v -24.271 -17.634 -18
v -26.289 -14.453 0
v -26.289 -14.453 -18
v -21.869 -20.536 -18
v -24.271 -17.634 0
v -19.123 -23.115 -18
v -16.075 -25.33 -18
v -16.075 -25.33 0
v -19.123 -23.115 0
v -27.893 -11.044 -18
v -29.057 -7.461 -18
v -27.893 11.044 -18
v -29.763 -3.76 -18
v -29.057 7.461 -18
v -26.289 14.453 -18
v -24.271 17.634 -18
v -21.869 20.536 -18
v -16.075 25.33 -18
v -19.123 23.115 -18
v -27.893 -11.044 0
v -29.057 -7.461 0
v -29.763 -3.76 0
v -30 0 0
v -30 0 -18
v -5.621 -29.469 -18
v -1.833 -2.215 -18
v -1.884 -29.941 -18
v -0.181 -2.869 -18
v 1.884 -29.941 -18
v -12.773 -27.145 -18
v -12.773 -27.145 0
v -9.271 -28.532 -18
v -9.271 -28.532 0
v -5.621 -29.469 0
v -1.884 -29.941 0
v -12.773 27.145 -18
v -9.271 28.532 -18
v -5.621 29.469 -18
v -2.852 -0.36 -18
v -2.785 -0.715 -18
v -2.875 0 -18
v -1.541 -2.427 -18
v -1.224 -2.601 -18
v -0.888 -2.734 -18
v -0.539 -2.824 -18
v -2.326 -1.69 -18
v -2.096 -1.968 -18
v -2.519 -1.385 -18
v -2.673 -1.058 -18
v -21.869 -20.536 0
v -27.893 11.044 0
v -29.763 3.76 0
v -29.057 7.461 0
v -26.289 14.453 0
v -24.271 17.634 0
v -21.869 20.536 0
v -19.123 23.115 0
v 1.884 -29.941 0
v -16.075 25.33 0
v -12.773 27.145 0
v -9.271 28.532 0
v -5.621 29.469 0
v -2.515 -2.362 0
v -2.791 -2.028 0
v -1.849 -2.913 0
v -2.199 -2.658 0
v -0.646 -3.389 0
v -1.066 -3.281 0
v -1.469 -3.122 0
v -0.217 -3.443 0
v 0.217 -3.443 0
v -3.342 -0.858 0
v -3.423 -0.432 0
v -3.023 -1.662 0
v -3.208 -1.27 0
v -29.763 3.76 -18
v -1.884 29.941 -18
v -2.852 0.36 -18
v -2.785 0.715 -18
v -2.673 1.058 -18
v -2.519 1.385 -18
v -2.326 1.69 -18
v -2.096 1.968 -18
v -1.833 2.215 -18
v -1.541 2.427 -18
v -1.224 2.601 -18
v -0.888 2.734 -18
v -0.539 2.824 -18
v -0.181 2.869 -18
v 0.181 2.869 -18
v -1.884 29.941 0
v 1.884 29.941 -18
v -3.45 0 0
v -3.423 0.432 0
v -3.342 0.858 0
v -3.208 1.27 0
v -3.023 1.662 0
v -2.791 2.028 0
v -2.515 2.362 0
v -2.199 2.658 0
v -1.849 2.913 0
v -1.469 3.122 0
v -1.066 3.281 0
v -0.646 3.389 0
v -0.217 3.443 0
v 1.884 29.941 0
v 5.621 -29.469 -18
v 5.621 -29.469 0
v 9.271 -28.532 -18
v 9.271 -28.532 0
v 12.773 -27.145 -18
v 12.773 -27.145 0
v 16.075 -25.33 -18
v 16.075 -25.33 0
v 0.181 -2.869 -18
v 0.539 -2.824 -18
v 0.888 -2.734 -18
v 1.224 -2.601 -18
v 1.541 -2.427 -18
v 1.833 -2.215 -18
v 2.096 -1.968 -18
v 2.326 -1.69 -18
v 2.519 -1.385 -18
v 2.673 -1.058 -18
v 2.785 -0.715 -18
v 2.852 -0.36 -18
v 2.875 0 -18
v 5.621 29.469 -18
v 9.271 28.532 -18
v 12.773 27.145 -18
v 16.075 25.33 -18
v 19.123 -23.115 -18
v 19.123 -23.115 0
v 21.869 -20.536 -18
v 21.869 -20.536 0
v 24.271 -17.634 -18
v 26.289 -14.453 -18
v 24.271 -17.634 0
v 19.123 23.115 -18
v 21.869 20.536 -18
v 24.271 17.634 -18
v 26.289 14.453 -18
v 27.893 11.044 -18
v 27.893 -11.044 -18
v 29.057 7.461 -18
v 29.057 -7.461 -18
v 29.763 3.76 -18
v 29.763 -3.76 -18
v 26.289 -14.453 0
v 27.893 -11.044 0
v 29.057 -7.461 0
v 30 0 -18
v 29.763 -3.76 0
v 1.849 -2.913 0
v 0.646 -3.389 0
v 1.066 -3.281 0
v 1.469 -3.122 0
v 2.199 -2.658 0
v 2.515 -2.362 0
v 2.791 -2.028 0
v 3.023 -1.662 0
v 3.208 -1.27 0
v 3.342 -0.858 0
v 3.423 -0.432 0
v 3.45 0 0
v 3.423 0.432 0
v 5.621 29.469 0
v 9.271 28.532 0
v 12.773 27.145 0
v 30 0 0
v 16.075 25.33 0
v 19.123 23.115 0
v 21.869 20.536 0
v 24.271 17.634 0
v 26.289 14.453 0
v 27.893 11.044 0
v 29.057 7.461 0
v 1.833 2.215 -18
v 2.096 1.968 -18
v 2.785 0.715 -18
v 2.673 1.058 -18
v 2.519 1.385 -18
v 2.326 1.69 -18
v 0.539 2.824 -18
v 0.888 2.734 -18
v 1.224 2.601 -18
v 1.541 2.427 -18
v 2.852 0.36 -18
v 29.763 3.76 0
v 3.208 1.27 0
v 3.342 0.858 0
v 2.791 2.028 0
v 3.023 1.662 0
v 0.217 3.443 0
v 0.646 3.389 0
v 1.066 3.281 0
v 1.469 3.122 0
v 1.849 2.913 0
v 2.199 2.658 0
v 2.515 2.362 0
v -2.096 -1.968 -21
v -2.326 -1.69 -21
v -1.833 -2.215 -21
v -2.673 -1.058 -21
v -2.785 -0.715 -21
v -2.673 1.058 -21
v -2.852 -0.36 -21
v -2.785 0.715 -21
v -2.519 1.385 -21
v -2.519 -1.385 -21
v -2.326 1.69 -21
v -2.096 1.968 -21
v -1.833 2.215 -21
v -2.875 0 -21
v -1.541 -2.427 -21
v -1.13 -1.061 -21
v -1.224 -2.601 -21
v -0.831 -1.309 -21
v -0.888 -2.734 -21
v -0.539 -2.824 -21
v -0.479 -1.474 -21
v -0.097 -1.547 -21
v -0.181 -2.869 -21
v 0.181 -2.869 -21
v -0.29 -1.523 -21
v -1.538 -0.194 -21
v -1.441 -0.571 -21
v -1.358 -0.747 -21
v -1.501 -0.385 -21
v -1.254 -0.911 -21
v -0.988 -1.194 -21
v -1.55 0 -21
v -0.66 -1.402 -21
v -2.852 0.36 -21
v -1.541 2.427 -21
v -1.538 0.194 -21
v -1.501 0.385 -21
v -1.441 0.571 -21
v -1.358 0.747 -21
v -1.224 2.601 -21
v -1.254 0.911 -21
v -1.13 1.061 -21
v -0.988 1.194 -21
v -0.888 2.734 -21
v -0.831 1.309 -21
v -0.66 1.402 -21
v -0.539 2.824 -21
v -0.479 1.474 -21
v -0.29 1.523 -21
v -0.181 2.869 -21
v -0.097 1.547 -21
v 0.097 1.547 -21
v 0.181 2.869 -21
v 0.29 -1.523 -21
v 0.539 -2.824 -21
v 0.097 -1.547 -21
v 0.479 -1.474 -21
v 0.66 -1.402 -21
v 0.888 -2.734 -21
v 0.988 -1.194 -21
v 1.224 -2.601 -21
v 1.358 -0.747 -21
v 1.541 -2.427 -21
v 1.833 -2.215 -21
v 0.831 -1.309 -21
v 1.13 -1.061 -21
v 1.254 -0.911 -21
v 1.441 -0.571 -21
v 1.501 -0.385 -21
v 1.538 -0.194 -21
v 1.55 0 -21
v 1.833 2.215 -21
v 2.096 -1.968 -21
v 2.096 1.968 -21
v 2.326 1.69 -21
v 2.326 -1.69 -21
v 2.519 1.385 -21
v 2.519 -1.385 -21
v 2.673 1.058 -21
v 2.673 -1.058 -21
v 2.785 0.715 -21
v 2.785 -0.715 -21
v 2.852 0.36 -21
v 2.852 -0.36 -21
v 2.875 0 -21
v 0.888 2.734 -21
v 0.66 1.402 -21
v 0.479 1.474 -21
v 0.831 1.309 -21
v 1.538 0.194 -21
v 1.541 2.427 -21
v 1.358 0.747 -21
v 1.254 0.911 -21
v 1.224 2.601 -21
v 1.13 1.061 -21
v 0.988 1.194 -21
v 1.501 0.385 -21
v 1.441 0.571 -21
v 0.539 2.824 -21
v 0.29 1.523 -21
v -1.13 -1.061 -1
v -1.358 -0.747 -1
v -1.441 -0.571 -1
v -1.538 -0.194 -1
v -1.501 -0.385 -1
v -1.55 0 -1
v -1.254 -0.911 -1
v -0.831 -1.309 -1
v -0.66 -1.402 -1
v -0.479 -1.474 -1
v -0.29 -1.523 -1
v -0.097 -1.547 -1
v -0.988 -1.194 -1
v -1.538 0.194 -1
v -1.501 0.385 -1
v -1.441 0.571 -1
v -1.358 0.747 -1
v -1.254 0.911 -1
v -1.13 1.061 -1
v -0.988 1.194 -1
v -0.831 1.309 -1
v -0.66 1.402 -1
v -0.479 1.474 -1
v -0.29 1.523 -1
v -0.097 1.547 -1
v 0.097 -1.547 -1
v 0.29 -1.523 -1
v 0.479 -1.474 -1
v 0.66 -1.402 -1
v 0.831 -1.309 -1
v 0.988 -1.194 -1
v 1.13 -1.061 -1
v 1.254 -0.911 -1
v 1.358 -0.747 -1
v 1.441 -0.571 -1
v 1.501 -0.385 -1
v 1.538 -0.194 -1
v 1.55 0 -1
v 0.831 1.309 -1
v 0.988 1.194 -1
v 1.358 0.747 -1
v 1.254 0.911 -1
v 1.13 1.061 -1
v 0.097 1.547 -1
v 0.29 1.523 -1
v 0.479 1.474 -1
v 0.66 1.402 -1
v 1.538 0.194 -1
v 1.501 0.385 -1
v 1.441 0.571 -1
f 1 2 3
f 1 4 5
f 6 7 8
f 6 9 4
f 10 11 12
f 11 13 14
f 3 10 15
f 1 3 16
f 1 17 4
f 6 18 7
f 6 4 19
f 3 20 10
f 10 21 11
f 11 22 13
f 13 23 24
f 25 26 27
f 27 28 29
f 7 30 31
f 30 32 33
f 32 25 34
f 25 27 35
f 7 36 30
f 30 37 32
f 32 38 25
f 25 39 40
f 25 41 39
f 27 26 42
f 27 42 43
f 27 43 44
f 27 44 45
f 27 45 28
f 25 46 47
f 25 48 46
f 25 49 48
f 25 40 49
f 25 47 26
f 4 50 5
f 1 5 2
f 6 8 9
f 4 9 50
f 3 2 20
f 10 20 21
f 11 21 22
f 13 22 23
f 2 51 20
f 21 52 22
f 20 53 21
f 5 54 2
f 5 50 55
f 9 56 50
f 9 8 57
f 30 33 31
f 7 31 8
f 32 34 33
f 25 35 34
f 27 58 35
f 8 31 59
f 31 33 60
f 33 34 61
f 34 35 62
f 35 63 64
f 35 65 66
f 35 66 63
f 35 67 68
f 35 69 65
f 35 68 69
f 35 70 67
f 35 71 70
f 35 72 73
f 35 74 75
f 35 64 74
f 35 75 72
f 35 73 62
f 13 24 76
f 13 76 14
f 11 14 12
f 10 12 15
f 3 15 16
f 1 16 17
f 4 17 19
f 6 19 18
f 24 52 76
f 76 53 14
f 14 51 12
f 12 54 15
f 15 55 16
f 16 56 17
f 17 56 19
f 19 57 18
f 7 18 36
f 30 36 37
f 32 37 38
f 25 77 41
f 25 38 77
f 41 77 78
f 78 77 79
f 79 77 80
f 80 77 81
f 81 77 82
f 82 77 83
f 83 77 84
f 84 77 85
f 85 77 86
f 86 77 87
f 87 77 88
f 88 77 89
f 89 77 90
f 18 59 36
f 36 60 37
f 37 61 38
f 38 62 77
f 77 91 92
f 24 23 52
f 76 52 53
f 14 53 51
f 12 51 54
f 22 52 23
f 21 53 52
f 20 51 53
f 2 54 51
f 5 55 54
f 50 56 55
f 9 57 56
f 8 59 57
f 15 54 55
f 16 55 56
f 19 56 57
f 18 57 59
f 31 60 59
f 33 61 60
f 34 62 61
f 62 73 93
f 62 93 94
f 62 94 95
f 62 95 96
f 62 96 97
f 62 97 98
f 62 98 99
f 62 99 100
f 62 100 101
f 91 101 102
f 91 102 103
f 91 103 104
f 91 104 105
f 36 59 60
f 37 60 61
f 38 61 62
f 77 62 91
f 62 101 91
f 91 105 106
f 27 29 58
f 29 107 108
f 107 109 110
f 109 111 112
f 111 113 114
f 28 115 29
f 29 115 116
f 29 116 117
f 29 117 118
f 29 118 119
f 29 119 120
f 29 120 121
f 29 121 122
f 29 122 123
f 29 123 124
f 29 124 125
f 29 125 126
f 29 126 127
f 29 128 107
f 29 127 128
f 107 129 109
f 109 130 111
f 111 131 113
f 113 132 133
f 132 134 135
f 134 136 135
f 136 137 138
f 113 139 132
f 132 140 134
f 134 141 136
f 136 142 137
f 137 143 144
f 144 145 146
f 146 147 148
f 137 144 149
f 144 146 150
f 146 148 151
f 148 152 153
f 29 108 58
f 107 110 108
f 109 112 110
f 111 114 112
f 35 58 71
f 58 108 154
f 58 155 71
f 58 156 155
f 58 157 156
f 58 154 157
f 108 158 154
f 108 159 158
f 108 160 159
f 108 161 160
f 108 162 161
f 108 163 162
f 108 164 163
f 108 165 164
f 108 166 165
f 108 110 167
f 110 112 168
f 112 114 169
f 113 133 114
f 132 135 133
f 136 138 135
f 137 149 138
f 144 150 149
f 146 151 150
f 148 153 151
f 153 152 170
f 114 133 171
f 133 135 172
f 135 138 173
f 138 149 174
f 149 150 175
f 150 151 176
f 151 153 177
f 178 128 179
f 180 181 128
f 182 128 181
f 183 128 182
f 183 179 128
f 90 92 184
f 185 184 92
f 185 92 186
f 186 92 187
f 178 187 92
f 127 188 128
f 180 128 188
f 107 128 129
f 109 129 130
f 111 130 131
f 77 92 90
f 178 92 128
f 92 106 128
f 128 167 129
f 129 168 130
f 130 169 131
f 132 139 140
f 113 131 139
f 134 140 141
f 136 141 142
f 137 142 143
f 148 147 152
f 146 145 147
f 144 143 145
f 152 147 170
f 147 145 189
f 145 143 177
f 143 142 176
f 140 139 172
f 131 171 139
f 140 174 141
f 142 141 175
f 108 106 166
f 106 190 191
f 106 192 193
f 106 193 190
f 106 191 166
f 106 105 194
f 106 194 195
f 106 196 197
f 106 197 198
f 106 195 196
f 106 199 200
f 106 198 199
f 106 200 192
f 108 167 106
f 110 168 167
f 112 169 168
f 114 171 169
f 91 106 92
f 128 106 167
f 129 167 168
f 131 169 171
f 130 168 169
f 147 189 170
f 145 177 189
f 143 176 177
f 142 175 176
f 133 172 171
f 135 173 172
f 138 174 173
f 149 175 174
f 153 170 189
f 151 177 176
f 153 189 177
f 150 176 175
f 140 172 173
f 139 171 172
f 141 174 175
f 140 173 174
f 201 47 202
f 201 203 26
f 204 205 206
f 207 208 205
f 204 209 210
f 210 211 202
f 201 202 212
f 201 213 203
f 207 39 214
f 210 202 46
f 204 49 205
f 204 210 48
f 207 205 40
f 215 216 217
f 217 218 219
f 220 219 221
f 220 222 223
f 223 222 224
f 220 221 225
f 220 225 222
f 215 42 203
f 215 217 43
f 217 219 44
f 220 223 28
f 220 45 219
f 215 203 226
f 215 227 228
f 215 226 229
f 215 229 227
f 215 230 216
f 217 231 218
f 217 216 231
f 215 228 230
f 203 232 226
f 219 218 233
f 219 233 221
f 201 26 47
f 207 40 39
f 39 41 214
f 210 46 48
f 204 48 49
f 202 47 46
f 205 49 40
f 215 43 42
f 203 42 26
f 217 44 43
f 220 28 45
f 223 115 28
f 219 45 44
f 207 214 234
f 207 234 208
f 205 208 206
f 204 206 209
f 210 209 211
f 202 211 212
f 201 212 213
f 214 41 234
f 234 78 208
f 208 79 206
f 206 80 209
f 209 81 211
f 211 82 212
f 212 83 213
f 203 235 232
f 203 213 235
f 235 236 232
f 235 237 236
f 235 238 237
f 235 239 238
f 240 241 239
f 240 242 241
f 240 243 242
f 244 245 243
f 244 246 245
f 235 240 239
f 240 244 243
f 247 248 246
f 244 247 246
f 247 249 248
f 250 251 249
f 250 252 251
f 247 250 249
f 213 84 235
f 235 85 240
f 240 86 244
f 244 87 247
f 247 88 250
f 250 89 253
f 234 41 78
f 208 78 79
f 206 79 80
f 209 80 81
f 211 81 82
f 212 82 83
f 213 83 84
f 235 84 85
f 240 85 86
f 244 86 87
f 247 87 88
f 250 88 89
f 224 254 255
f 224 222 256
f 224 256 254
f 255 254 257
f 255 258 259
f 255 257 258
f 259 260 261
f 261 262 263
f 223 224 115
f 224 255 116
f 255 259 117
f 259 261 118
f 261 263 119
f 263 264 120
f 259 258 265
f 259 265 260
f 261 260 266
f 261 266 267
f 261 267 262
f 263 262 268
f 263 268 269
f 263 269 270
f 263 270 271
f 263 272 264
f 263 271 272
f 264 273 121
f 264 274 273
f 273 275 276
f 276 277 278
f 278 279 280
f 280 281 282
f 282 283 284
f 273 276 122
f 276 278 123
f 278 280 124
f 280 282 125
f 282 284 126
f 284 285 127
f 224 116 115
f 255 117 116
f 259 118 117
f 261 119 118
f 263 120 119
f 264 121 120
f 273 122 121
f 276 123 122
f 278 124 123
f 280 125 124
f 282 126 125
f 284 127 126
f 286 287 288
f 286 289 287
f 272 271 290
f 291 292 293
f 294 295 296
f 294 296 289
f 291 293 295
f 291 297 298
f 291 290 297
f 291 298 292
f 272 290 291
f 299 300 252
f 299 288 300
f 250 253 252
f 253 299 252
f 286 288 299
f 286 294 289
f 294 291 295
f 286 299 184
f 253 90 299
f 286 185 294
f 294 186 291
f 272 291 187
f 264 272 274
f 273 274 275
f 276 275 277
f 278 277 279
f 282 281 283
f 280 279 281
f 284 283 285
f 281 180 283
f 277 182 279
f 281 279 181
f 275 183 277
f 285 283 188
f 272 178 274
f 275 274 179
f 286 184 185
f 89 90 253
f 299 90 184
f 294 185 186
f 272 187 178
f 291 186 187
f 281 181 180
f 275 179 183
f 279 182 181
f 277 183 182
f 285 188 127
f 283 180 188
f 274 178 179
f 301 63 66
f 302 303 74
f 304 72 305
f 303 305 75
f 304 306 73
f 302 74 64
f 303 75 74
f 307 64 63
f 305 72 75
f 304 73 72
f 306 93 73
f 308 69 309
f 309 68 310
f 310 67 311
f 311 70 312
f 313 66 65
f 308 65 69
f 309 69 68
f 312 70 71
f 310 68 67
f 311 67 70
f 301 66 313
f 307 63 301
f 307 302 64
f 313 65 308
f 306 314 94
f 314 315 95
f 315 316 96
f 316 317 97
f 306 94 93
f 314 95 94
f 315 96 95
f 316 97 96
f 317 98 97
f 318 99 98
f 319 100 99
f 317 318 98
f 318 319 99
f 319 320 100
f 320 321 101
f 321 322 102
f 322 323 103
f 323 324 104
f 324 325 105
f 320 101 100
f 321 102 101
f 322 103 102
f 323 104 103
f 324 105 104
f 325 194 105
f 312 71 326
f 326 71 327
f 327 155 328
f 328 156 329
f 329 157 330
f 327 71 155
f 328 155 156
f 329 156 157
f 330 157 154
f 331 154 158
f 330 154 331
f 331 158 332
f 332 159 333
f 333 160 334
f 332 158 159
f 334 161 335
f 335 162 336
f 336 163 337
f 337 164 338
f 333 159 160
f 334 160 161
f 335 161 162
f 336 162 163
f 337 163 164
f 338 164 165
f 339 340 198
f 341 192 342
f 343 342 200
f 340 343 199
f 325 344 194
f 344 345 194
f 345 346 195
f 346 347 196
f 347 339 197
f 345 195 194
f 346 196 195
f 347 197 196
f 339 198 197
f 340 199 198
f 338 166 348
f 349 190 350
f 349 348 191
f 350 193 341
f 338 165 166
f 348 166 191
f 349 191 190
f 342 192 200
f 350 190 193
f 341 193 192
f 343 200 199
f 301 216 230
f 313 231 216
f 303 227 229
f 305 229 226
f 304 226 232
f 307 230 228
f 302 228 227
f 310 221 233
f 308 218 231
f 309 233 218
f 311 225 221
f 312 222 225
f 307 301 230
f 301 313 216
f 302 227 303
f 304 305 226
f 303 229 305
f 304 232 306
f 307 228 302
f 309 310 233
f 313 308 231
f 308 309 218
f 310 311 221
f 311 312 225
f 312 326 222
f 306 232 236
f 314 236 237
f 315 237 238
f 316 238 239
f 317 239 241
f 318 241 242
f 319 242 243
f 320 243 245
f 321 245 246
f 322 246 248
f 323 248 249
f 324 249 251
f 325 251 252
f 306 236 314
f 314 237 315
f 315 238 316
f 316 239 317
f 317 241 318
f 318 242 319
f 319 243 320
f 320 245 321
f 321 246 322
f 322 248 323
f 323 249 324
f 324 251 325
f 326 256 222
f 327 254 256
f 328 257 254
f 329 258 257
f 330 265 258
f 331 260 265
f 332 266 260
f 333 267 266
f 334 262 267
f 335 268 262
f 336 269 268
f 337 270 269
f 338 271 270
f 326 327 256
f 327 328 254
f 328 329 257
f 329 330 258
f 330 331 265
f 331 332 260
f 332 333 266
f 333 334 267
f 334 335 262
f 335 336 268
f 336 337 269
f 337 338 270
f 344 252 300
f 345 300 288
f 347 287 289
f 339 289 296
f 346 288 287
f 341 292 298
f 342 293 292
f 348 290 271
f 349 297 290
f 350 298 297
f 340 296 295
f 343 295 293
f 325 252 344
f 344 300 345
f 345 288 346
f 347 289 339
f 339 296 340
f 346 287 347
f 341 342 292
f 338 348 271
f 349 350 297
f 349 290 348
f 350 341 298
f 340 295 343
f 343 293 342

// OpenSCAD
$fn = 50;

difference() {
	union() {
		translate(v = [0, 0, -18.0]) {
			cylinder(h = 18, r = 30.0);
		}
		#translate(v = [0, 0, -21.0]) {
			cylinder(h = 21, r = 2.875);
		}
	}
	union() {
		translate(v = [0, 0, 0]) {
			rotate(a = [0, 0, 0]) {
				difference() {
					union() {
						translate(v = [0, 0, -21.0]) {
							cylinder(h = 21, r = 1.25);
						}
						translate(v = [0, 0, -1.0]) {
							cylinder(h = 1.0, r1 = 1.55, r2 = 3.45);
						}
						translate(v = [0, 0, -21.0]) {
							cylinder(h = 21, r = 1.55);
						}
						translate(v = [0, 0, -21.0]) {
							cylinder(h = 21, r = 1.25);
						}
					}
					union();
				}
			}
		}
	}
}
